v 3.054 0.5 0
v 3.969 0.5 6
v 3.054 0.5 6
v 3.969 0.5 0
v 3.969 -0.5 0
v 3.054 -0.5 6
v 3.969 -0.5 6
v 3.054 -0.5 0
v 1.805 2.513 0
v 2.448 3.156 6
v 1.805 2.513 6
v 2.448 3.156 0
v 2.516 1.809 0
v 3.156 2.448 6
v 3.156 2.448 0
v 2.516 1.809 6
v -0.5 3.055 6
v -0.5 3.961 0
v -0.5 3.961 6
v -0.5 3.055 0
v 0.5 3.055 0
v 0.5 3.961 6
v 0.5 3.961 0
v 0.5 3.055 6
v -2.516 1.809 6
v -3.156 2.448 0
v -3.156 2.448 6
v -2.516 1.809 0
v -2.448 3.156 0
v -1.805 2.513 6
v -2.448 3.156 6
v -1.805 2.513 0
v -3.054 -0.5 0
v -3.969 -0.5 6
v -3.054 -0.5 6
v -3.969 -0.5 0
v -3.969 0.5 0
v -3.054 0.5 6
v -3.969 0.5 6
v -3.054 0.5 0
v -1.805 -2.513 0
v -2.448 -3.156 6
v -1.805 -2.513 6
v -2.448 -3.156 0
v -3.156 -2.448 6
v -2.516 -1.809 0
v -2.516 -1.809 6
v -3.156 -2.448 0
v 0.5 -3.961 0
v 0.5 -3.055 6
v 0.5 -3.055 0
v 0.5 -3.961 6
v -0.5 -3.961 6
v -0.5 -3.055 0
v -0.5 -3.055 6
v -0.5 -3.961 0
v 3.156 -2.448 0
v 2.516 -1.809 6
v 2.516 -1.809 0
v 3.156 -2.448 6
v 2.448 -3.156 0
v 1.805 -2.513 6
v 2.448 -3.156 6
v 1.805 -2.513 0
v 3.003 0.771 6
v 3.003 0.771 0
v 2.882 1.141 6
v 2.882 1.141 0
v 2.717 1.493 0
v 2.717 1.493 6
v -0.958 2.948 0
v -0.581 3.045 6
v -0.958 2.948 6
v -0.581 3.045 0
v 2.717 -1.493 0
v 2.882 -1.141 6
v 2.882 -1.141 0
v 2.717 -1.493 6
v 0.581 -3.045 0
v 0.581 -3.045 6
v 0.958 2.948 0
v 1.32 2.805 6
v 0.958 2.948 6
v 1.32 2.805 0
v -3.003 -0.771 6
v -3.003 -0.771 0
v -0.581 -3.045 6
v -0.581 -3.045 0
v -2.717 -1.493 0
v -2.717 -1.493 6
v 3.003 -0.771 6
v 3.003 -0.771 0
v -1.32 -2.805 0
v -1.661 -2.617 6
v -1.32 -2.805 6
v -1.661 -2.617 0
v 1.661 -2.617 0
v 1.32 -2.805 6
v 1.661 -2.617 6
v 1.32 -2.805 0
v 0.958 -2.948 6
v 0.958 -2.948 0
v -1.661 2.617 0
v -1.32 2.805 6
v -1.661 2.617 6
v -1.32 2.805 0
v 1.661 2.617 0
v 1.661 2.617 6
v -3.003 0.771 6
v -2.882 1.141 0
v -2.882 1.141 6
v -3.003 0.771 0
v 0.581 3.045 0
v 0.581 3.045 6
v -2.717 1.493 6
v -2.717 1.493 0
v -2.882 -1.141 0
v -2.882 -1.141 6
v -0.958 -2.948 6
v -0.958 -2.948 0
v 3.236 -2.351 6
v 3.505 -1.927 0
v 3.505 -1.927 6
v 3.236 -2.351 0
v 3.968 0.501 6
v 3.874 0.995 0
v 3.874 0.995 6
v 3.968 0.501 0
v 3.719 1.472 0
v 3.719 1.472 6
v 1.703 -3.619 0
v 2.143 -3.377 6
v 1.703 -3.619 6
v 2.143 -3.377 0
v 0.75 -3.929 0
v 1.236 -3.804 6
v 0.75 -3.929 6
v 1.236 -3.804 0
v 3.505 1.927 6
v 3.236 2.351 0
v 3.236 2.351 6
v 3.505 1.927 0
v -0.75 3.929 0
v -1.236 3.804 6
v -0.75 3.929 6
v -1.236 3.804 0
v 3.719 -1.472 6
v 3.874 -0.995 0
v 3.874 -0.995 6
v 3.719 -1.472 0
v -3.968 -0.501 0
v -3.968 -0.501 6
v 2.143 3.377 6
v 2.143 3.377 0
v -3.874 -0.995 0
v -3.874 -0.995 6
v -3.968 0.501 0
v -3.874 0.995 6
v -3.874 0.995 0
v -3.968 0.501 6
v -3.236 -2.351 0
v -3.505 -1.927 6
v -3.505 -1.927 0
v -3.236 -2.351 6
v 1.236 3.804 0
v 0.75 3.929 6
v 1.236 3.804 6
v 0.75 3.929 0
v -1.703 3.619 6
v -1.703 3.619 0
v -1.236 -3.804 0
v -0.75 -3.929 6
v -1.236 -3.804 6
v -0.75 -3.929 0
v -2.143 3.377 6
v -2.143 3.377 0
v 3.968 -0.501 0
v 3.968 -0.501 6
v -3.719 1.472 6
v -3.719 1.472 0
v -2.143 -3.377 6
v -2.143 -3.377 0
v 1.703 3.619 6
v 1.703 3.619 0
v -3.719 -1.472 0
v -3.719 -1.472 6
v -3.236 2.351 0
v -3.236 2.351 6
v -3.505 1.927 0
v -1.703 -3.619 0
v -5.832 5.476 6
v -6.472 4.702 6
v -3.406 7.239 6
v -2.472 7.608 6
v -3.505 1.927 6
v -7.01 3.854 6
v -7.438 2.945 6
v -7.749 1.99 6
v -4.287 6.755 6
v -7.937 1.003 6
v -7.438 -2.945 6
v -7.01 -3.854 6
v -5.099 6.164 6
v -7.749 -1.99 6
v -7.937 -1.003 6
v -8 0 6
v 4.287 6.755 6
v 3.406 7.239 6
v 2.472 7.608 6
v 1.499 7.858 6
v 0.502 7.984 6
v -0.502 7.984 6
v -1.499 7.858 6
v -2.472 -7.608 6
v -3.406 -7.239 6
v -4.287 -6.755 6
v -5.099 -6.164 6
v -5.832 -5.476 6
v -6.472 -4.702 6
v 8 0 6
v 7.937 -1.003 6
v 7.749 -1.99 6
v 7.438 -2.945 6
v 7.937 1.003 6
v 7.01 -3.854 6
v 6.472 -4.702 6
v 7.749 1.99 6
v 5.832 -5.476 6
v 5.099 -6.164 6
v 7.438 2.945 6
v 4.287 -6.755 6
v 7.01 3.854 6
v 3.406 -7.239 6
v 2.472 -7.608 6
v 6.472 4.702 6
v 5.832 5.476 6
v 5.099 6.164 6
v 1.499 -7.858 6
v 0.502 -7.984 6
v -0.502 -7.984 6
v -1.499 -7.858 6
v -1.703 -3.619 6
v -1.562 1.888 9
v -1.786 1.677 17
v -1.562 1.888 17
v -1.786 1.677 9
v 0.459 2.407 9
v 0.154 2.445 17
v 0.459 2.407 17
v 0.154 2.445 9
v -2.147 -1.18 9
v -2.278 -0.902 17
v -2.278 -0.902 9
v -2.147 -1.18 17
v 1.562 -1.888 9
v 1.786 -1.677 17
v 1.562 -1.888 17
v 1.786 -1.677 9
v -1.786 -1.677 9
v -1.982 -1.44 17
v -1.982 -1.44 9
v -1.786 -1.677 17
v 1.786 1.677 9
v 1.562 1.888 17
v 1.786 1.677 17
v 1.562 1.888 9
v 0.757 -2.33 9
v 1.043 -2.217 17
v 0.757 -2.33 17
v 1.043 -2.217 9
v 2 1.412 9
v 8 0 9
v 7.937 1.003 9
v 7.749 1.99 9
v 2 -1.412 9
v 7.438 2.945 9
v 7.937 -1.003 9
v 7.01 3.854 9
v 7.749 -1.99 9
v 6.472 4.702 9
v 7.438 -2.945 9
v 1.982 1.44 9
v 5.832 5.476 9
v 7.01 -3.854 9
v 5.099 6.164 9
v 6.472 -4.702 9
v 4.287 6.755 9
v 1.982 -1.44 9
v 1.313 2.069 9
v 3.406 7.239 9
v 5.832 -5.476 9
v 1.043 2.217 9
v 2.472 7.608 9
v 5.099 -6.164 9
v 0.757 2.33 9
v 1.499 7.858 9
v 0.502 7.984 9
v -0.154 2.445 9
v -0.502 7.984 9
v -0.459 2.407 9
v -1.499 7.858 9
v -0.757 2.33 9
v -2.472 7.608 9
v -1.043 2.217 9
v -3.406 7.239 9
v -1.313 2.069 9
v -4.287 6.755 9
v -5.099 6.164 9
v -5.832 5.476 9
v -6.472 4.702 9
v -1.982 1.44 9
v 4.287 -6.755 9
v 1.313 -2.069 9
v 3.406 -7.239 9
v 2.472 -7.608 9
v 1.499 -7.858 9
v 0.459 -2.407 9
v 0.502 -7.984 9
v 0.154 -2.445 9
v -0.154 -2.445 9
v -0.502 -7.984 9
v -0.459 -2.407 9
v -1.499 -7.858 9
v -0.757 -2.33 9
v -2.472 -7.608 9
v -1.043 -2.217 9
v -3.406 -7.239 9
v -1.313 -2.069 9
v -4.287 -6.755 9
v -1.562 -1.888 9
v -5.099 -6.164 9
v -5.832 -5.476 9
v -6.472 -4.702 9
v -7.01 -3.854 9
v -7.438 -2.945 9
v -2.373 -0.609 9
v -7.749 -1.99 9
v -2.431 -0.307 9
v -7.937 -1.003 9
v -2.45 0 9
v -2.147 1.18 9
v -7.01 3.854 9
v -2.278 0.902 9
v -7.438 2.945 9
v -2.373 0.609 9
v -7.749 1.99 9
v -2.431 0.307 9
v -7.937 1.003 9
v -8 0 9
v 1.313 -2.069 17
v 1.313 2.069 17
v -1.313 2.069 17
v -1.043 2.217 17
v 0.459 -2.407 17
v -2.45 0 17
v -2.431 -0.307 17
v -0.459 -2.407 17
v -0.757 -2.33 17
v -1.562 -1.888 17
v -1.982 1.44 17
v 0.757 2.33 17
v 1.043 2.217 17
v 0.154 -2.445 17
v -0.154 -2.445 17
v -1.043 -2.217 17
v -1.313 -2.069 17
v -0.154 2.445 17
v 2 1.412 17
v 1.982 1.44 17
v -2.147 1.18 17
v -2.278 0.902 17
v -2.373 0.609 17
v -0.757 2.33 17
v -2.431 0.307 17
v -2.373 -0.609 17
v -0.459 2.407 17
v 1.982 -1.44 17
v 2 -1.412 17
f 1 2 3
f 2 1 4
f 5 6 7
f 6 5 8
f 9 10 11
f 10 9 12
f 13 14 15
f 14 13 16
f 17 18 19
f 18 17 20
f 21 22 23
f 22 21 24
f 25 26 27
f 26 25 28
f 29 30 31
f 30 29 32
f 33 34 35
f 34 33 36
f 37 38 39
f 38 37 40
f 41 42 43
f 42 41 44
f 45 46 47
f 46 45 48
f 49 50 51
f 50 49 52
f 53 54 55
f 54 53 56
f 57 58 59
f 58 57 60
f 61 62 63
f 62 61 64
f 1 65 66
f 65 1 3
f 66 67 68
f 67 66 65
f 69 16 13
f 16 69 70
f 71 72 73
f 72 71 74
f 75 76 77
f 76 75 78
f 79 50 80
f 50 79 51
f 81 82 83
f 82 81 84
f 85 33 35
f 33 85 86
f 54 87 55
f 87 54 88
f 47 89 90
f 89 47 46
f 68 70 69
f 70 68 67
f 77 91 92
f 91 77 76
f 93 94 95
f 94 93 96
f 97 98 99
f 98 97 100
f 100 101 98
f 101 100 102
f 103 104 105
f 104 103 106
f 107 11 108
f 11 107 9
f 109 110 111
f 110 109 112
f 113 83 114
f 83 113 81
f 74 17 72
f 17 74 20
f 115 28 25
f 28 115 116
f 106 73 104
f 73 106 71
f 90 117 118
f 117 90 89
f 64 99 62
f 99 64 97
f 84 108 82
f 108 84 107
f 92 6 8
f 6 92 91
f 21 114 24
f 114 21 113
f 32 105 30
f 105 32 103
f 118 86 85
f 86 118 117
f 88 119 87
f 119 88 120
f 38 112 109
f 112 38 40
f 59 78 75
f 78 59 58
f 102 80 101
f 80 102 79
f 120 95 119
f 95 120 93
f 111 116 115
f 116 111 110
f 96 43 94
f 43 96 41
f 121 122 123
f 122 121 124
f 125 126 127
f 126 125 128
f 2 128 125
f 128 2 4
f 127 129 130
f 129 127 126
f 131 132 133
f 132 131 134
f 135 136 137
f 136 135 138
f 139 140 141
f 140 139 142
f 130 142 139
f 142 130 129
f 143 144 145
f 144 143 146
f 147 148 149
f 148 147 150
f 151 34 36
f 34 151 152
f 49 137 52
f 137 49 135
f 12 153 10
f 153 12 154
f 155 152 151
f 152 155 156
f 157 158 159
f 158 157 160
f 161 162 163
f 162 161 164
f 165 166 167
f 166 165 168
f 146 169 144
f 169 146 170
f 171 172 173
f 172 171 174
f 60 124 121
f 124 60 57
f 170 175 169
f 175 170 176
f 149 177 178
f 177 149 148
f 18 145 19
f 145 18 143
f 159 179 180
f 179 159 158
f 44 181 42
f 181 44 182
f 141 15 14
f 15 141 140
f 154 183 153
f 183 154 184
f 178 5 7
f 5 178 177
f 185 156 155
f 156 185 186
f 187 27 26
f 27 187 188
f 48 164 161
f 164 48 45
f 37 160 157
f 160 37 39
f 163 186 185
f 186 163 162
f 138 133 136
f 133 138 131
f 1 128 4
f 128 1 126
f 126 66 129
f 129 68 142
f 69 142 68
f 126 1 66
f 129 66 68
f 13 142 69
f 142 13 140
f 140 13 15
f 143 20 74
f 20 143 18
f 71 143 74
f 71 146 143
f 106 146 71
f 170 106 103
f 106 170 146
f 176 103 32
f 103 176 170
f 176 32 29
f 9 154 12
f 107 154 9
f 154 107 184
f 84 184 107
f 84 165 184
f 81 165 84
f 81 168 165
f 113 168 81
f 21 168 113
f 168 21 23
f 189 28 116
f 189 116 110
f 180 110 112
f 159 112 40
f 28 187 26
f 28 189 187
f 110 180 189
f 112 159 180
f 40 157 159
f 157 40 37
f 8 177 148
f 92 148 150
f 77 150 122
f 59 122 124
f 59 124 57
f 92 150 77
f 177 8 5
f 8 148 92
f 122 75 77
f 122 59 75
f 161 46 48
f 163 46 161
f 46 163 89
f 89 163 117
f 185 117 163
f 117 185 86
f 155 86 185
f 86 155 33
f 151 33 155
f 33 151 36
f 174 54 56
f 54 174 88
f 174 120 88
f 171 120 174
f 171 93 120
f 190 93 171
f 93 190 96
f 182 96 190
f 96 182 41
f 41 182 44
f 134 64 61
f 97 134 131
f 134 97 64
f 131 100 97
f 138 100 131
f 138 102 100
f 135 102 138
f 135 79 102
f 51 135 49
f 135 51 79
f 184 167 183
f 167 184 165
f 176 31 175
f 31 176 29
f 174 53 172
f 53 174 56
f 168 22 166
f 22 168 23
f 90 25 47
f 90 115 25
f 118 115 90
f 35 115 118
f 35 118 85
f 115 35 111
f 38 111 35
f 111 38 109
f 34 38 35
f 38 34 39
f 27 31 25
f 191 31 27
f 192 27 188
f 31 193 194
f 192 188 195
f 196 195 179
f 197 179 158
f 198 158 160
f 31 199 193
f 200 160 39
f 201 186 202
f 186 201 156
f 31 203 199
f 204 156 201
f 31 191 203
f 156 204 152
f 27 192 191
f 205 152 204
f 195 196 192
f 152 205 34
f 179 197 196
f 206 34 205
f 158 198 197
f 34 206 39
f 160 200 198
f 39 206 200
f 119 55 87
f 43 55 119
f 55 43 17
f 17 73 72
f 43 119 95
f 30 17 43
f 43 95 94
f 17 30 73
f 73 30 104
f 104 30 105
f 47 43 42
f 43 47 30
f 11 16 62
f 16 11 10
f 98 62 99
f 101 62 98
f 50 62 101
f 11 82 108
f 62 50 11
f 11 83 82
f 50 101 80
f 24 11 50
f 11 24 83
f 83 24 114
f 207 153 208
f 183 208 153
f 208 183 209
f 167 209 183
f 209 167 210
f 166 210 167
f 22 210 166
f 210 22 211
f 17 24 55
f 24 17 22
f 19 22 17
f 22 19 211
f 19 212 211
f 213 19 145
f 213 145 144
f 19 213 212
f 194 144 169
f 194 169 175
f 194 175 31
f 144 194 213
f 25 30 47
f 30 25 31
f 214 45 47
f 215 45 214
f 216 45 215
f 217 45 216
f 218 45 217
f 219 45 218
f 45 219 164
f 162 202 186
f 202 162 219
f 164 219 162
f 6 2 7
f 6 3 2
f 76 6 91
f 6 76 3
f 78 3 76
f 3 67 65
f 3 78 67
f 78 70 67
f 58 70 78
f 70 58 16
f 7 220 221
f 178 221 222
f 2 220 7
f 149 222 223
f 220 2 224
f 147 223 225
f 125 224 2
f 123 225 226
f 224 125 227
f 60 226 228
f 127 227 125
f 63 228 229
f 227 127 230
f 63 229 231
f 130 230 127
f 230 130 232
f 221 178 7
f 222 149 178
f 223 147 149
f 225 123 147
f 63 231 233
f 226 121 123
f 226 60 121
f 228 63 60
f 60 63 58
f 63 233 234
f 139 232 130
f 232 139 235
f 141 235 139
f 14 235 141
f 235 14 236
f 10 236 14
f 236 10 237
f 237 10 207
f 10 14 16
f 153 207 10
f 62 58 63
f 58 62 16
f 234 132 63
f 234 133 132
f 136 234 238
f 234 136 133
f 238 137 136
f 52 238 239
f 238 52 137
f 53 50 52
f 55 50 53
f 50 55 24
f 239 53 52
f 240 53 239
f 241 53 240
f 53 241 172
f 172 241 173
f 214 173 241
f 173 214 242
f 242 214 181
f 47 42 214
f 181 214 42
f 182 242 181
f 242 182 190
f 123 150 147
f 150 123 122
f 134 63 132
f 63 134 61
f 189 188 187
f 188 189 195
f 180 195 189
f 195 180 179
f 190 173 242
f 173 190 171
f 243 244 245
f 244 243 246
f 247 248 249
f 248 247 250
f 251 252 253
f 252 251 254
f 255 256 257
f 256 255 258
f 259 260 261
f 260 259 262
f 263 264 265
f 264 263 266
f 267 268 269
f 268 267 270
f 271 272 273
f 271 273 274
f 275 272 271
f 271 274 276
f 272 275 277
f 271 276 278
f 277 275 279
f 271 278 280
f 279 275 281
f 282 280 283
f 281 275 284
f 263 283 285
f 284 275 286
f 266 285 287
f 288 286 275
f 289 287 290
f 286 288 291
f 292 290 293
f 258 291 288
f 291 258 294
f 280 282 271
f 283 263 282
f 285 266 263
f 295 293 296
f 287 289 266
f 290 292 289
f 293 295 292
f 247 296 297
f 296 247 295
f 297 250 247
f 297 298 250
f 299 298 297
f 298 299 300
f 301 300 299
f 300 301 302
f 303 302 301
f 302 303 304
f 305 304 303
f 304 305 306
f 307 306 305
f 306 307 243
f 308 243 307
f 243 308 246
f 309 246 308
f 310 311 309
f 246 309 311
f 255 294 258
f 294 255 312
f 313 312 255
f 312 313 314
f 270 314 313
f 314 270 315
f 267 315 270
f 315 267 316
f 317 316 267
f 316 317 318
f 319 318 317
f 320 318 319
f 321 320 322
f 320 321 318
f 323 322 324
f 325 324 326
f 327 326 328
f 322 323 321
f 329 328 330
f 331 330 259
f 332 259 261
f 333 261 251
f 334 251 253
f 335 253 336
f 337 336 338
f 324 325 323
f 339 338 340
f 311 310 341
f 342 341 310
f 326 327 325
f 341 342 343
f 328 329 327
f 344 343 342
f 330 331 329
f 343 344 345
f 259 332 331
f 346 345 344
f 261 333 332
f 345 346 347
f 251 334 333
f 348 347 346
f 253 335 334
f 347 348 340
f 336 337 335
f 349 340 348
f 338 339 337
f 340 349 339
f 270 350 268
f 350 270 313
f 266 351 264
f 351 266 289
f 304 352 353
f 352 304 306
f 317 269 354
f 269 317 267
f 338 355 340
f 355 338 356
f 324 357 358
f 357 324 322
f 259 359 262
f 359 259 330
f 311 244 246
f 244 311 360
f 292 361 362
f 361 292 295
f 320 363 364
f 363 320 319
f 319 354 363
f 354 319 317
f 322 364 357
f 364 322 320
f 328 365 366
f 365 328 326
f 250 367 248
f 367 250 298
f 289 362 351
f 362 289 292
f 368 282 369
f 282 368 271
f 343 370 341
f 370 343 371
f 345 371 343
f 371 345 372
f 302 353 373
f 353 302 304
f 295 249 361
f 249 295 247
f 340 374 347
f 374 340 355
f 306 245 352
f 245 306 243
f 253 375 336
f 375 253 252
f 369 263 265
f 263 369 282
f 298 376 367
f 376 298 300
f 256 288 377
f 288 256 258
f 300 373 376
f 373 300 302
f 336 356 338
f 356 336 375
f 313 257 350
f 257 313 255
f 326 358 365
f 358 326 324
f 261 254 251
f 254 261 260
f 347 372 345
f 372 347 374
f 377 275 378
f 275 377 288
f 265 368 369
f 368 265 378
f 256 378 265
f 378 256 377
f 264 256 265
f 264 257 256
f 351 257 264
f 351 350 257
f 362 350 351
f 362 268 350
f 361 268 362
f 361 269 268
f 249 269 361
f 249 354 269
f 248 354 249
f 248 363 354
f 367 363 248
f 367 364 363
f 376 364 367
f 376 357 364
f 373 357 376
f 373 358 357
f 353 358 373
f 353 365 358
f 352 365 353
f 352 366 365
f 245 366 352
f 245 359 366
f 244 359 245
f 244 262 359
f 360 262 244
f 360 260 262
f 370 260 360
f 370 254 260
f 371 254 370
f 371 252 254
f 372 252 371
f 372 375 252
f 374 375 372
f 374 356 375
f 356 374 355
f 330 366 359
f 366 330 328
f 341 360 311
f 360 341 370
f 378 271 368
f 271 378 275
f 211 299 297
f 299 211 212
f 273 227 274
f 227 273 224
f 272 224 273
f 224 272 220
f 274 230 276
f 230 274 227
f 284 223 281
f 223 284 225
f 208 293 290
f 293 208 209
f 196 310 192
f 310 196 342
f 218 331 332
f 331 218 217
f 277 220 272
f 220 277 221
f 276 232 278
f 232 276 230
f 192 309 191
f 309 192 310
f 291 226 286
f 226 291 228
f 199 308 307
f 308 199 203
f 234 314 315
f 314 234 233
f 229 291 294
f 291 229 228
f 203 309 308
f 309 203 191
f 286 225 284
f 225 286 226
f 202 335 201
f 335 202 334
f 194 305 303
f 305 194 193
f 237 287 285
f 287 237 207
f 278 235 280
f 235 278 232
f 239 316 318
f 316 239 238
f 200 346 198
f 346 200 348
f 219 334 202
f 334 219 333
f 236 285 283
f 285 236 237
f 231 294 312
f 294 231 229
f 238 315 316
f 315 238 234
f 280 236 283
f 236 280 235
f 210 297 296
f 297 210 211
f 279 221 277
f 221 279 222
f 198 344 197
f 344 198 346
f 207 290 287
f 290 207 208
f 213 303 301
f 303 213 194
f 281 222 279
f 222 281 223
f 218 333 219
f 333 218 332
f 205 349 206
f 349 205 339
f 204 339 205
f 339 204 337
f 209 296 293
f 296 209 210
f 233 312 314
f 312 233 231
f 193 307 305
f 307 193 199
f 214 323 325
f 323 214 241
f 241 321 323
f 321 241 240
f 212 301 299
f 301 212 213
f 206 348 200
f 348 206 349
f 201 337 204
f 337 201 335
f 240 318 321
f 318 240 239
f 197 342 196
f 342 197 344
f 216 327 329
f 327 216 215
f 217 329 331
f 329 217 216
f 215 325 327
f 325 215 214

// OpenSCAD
// DYNAMIXEL XL330 to 32P Gear Adapter
// Connects XL330-M288-T output shaft to 32-pitch 11-tooth gear with 5mm bore
// Design: Press-fit socket with set screw retention

// ===== PARAMETERS =====

// Gear specifications
gear_bore_diameter = 5.0;        // 5mm bore in your gear
gear_hub_height = 8.0;           // Height of shaft that goes into gear
set_screw_flat_depth = 0.5;      // Depth of flat for set screw

// DYNAMIXEL XL330 output shaft (measured from drawing)
// The output shaft appears to be approximately 6mm diameter with splines
shaft_diameter = 6.0;            // Approximate outer diameter of splined shaft
shaft_socket_depth = 6.0;        // How deep the socket goes onto shaft
shaft_socket_tolerance = 0.2;    // Clearance for press fit (adjust after test print)

// Adapter body
flange_diameter = 16.0;          // Diameter of mounting flange
flange_thickness = 3.0;          // Thickness of flange
total_height = flange_thickness + gear_hub_height;

// Set screw hole in gear (standard M3)
set_screw_diameter = 3.2;        // M3 clearance hole

// Spline approximation (8 splines typical for small DYNAMIXEL)
num_splines = 8;
spline_depth = 0.4;              // How deep splines cut into socket

// Print tolerance
hub_tolerance = -0.1;            // Negative = slightly smaller for tight fit

// ===== MODULES =====

module gear_hub() {
    difference() {
        // Main hub cylinder
        cylinder(h=gear_hub_height, d=gear_bore_diameter + hub_tolerance, $fn=50);
        
        // Flat for set screw
        translate([gear_bore_diameter/2 - set_screw_flat_depth, -gear_bore_diameter/2, 0])
            cube([set_screw_flat_depth + 1, gear_bore_diameter, gear_hub_height]);
    }
}

module splined_socket() {
    difference() {
        // Outer cylinder
        cylinder(h=shaft_socket_depth, d=shaft_diameter + 2, $fn=50);
        
        // Inner splined hole
        translate([0, 0, -0.1]) {
            // Base cylinder
            cylinder(h=shaft_socket_depth + 0.2, 
                    d=shaft_diameter + shaft_socket_tolerance, $fn=50);
            
            // Splines (radial cuts)
            for (i = [0:num_splines-1]) {
                rotate([0, 0, i * 360/num_splines])
                    translate([shaft_diameter/2 - spline_depth, -0.5, 0])
                        cube([spline_depth + 1, 1, shaft_socket_depth + 0.2]);
            }
        }
    }
}

module mounting_flange() {
    difference() {
        cylinder(h=flange_thickness, d=flange_diameter, $fn=50);
        
        // Optional: Add mounting holes for bolting to motor face
        // Uncomment if you want to bolt the adapter to the motor
        /*
        for (i = [0:3]) {
            rotate([0, 0, i * 90 + 45])
                translate([flange_diameter/2 - 2, 0, -0.1])
                    cylinder(h=flange_thickness + 0.2, d=2.5, $fn=20);
        }
        */
    }
}

// ===== MAIN ASSEMBLY =====

module adapter() {
    union() {
        // Bottom: Splined socket that mates with motor shaft
        translate([0, 0, 0])
            splined_socket();
        
        // Middle: Mounting flange
        translate([0, 0, shaft_socket_depth])
            mounting_flange();
        
        // Top: Gear hub that fits into 5mm bore
        translate([0, 0, shaft_socket_depth + flange_thickness])
            gear_hub();
    }
}

// ===== RENDER =====

adapter();

// ===== PRINT INSTRUCTIONS =====
// Material: PETG or Nylon (for strength and wear resistance)
// Layer height: 0.15mm or finer
// Infill: 100%
// Supports: None needed
// Orientation: Print with gear hub pointing UP (socket on build plate)
// 
// POST-PROCESSING:
// 1. Test fit on XL330 shaft - should be snug
// 2. If too tight, increase shaft_socket_tolerance
// 3. If too loose, decrease shaft_socket_tolerance
// 4. Sand the gear hub lightly if needed for smooth fit
//
// ASSEMBLY:
// 1. Press adapter onto XL330 output shaft (may need gentle tapping)
// 2. Slide gear onto hub
// 3. Align set screw with flat
// 4. Tighten set screw (don't overtighten - plastic will deform)
